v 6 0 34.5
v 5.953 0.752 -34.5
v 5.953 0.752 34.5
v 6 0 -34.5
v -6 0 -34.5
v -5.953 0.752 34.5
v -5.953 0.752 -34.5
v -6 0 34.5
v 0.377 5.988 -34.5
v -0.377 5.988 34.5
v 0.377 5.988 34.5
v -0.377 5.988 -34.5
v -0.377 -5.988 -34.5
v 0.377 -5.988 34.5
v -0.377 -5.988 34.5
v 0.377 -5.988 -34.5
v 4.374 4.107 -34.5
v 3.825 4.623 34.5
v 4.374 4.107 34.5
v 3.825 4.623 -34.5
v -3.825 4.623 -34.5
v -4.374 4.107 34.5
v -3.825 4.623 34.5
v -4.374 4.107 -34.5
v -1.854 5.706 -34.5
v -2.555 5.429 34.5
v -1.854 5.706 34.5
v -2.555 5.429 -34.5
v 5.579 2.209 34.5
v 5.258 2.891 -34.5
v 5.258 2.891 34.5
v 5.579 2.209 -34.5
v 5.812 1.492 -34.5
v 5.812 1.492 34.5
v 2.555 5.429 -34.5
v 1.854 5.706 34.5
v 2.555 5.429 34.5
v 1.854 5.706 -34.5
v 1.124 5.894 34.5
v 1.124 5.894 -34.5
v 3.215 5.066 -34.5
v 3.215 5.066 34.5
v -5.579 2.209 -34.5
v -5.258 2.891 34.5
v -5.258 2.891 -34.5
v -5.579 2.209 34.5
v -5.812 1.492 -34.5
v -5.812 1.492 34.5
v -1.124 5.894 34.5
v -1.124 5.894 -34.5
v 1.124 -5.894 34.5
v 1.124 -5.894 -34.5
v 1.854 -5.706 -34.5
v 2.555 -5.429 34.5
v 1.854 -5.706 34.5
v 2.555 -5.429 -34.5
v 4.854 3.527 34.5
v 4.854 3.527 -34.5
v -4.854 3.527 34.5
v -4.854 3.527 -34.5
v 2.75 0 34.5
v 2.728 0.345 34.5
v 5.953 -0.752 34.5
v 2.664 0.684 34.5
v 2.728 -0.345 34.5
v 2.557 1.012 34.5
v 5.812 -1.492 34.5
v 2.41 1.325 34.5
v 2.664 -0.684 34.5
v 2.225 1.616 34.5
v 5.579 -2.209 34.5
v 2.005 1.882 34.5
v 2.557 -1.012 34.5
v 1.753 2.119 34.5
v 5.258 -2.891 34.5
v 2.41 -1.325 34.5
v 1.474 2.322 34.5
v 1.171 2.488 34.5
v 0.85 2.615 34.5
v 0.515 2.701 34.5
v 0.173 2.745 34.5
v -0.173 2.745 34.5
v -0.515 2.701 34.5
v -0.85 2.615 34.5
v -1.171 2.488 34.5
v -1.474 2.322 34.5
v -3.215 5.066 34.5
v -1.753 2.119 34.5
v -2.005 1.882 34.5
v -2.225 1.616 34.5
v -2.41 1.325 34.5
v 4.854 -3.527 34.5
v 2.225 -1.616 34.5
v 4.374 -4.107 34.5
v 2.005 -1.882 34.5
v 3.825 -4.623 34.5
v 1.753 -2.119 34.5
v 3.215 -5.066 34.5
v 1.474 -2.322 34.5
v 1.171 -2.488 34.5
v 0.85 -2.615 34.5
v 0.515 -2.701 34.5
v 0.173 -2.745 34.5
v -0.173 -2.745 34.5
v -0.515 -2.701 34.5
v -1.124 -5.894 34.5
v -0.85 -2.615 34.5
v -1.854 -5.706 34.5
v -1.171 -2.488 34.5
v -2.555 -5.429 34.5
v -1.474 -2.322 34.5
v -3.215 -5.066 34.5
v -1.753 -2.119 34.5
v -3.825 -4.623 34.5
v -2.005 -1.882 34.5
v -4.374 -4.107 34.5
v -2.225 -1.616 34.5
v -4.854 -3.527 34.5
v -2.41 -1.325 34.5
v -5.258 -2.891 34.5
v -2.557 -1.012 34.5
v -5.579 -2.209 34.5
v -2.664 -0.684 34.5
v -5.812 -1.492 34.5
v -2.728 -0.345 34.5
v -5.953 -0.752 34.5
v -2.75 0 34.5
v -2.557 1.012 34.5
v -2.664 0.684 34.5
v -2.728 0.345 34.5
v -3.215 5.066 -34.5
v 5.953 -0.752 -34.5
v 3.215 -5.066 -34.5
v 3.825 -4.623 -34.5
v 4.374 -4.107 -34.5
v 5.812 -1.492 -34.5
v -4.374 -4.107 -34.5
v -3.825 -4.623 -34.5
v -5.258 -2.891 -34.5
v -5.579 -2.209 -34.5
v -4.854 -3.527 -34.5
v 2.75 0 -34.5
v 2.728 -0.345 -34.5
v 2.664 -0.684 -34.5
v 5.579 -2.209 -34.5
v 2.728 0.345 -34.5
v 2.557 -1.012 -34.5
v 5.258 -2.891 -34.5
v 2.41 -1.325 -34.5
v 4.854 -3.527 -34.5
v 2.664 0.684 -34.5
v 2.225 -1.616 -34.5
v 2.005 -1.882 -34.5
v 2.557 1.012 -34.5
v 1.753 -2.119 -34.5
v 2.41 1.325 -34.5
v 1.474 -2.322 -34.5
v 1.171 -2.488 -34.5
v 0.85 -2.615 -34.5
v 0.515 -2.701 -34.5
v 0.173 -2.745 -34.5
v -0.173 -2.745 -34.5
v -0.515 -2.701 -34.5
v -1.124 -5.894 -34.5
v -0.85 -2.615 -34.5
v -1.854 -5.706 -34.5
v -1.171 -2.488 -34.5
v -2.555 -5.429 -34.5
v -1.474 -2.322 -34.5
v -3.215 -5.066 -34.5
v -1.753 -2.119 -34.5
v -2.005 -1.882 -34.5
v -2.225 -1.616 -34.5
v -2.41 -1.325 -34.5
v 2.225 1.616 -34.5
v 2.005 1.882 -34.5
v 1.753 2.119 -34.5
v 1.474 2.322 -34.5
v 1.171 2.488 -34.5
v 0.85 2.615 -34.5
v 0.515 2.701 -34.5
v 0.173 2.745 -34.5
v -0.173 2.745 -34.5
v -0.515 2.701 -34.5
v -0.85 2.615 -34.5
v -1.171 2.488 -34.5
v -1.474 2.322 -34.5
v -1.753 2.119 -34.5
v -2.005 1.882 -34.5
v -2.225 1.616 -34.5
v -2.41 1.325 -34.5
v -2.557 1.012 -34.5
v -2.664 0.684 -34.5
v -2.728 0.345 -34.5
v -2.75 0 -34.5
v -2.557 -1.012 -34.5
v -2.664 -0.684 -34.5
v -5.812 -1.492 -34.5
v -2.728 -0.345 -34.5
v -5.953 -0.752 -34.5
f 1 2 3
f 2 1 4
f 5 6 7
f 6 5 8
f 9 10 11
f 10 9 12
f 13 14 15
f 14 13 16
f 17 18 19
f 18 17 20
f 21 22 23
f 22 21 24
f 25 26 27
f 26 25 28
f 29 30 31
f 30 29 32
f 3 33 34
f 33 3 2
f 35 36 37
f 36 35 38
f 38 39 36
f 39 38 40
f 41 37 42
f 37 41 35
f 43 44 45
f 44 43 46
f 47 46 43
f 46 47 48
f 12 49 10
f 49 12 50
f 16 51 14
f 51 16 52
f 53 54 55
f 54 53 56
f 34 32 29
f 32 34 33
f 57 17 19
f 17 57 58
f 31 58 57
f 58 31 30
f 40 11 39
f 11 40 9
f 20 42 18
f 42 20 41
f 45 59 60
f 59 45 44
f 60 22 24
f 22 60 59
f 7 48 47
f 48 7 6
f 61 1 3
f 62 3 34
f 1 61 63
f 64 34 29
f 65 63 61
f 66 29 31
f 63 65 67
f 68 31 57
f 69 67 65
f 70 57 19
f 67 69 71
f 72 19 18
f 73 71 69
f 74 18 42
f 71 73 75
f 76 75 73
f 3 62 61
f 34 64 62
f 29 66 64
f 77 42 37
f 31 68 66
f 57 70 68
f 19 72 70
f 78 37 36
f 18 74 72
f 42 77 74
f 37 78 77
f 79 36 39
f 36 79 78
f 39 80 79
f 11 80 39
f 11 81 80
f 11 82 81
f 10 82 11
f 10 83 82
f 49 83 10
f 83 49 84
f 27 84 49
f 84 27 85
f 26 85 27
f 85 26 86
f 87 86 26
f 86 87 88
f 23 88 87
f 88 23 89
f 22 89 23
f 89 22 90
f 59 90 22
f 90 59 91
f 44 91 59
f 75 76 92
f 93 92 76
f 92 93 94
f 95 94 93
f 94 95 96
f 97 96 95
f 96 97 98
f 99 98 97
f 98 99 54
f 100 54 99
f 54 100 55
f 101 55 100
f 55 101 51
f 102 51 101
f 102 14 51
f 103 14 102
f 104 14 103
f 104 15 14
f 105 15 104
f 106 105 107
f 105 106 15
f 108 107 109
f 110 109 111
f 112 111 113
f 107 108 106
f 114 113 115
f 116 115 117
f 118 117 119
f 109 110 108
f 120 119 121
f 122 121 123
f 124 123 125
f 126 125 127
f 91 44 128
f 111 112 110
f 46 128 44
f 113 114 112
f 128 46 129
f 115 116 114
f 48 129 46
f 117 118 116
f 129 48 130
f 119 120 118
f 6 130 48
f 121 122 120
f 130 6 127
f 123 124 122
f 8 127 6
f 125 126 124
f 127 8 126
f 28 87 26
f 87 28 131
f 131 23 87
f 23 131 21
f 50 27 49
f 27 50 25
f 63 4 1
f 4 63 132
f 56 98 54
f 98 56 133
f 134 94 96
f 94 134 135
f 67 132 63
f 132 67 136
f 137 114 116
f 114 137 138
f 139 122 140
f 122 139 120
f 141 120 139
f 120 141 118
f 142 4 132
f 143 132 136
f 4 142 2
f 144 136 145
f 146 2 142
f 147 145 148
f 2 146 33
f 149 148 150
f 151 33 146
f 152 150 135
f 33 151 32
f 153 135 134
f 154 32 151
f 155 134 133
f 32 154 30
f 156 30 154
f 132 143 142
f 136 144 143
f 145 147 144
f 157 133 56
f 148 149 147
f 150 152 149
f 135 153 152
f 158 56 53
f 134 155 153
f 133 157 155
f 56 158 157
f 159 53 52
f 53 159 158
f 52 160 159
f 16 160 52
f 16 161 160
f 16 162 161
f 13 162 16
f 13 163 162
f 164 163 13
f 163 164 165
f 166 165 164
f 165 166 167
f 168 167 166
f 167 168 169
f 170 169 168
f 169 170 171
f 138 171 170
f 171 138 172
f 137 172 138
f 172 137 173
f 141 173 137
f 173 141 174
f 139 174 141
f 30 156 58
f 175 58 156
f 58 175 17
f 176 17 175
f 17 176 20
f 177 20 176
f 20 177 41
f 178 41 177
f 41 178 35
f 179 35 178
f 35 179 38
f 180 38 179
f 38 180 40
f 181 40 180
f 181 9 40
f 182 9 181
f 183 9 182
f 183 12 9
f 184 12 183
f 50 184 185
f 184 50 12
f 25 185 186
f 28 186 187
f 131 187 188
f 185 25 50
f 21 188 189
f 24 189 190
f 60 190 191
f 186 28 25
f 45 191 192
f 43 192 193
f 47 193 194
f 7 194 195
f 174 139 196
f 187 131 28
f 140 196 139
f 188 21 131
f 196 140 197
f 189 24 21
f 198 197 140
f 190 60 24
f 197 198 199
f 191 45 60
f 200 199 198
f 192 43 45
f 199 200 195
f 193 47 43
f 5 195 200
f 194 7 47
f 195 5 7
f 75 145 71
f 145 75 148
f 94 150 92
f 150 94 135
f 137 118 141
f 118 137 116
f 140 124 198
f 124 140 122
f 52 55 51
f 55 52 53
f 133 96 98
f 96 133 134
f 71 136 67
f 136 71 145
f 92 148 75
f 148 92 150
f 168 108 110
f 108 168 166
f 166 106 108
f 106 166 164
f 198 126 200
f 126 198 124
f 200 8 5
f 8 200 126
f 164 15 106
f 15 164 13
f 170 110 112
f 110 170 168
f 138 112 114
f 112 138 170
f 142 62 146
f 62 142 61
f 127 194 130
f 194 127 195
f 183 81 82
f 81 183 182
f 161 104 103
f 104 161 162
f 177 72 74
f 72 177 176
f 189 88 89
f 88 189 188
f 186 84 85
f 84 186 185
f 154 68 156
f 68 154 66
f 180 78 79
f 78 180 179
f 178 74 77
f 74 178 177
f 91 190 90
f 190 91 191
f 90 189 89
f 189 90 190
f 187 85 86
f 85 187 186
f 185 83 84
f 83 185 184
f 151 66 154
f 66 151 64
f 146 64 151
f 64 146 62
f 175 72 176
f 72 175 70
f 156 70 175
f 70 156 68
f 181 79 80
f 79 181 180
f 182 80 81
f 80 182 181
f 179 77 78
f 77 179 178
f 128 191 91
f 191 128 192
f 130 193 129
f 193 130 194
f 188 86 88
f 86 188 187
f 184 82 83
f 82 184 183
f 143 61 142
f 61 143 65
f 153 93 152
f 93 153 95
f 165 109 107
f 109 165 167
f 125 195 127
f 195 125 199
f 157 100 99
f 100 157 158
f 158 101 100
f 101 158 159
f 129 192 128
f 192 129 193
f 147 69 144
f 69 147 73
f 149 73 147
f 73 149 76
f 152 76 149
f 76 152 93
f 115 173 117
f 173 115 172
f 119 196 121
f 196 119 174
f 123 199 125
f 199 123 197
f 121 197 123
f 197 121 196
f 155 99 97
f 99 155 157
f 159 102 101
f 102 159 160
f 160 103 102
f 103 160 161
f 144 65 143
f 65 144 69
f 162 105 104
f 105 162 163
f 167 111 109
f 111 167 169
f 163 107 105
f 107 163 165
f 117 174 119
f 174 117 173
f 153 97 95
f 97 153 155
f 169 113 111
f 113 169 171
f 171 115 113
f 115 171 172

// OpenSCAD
$fn = 50;


difference() {
	union() {
		translate(v = [0, 0, -34.5000000000]) {
			cylinder(h = 69, r = 6.0000000000);
		}
	}
	union() {
		translate(v = [0, 0, -100.0000000000]) {
			cylinder(h = 200, r = 2.7500000000);
		}
	}
}
